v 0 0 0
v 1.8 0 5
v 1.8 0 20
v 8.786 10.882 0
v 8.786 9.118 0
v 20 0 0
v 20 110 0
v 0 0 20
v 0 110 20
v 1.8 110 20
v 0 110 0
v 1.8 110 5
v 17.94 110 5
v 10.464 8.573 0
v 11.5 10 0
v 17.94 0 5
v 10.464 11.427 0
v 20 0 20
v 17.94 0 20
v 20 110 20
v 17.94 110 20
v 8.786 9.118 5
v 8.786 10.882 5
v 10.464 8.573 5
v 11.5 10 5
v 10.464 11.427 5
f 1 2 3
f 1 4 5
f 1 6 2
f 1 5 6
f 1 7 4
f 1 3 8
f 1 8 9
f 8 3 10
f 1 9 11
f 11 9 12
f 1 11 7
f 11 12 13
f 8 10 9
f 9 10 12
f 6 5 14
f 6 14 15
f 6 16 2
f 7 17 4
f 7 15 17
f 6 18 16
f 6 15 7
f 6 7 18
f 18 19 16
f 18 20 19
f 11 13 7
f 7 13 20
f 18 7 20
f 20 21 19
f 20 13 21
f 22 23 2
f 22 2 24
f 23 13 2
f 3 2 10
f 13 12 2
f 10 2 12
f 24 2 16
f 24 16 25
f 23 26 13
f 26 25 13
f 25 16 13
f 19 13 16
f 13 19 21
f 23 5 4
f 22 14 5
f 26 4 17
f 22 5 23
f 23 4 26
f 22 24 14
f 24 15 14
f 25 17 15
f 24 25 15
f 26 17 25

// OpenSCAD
difference() {
cube([20,110,20]);
translate([(20-16.4)/2,-5,5]) cube([16.14,120,20]);
translate([10,10,-1]) cylinder(d=3,h=100);
}
